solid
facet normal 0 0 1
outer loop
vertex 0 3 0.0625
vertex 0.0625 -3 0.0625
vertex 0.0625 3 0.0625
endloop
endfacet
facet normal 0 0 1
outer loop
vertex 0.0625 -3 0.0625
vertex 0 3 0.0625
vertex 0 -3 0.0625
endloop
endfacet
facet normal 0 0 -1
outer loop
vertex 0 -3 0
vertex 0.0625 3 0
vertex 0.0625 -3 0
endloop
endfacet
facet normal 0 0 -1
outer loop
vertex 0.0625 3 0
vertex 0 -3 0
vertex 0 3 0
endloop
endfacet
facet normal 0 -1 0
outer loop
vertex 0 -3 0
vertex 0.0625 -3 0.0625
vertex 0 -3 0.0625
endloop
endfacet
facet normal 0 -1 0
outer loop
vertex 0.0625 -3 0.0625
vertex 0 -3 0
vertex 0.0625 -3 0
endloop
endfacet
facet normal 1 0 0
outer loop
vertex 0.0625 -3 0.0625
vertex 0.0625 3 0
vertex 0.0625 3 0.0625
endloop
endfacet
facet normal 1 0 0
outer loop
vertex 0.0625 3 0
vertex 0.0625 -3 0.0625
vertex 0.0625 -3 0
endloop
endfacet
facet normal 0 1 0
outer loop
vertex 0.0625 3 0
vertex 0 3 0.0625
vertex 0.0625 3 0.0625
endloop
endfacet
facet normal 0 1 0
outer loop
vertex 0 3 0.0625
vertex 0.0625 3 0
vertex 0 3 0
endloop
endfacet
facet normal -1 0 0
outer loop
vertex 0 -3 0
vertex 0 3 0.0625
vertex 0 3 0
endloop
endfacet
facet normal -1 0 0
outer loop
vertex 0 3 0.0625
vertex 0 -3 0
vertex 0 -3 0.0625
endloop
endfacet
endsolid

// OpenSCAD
// file: ../../../constraints.scad
//####################################
// Math-Magik LPP - Design Constraints
// (c) 2021 by Roie R. Black
//====================================

// AMA Rules for event 208
//------------------------------------

max_overall_length = 20;
max_projected_wing_span = 18;
max_bearing_to_rear_hook = 10;
max_wing_chord = 5;
max_stab_span = 12;
max_stab_chord = 4;
max_prop_diameter = 12;
// file: MMlib/square_spar.scad
//####################################
// square_spar.scad
// (c) 2021 by Roie R. Black
//====================================


module square_spar(length=6,size=1/16) {
  translate([size/2, 0, size/2])
    cube([size,length,size], center=true);
}

square_spar(6,1/16);
// file: ../../stab_data.scad
//#####################################
// stab.data
// (c) 2021 by Roie R. Black
//=====================================
include <../constraints.scad>

// center section dimensions
center_span = 6;
spar_size = 1/16;
rib_chord = max_stab_chord - 2 * spar_size;
rib_camber = 2;
num_center_ribs = 3;

// tip section dimensions
tip_span = (max_stab_span - center_span)/2;
tip_radius = 1.5;
tip_le_span = tip_span - tip_radius;
tip_rib_chord = max_stab_chord - tip_radius - spar_size;
// main file
//##########################################
// spar.scad = stab center section
// (c) 2021 by Roie R. Black
//==========================================
include <../../stab_data.scad>
use <MMlib/square_spar.scad>

module spar() {
		square_spar(center_span, spar_size);
}

//==========================================
// display this shape
spar();
